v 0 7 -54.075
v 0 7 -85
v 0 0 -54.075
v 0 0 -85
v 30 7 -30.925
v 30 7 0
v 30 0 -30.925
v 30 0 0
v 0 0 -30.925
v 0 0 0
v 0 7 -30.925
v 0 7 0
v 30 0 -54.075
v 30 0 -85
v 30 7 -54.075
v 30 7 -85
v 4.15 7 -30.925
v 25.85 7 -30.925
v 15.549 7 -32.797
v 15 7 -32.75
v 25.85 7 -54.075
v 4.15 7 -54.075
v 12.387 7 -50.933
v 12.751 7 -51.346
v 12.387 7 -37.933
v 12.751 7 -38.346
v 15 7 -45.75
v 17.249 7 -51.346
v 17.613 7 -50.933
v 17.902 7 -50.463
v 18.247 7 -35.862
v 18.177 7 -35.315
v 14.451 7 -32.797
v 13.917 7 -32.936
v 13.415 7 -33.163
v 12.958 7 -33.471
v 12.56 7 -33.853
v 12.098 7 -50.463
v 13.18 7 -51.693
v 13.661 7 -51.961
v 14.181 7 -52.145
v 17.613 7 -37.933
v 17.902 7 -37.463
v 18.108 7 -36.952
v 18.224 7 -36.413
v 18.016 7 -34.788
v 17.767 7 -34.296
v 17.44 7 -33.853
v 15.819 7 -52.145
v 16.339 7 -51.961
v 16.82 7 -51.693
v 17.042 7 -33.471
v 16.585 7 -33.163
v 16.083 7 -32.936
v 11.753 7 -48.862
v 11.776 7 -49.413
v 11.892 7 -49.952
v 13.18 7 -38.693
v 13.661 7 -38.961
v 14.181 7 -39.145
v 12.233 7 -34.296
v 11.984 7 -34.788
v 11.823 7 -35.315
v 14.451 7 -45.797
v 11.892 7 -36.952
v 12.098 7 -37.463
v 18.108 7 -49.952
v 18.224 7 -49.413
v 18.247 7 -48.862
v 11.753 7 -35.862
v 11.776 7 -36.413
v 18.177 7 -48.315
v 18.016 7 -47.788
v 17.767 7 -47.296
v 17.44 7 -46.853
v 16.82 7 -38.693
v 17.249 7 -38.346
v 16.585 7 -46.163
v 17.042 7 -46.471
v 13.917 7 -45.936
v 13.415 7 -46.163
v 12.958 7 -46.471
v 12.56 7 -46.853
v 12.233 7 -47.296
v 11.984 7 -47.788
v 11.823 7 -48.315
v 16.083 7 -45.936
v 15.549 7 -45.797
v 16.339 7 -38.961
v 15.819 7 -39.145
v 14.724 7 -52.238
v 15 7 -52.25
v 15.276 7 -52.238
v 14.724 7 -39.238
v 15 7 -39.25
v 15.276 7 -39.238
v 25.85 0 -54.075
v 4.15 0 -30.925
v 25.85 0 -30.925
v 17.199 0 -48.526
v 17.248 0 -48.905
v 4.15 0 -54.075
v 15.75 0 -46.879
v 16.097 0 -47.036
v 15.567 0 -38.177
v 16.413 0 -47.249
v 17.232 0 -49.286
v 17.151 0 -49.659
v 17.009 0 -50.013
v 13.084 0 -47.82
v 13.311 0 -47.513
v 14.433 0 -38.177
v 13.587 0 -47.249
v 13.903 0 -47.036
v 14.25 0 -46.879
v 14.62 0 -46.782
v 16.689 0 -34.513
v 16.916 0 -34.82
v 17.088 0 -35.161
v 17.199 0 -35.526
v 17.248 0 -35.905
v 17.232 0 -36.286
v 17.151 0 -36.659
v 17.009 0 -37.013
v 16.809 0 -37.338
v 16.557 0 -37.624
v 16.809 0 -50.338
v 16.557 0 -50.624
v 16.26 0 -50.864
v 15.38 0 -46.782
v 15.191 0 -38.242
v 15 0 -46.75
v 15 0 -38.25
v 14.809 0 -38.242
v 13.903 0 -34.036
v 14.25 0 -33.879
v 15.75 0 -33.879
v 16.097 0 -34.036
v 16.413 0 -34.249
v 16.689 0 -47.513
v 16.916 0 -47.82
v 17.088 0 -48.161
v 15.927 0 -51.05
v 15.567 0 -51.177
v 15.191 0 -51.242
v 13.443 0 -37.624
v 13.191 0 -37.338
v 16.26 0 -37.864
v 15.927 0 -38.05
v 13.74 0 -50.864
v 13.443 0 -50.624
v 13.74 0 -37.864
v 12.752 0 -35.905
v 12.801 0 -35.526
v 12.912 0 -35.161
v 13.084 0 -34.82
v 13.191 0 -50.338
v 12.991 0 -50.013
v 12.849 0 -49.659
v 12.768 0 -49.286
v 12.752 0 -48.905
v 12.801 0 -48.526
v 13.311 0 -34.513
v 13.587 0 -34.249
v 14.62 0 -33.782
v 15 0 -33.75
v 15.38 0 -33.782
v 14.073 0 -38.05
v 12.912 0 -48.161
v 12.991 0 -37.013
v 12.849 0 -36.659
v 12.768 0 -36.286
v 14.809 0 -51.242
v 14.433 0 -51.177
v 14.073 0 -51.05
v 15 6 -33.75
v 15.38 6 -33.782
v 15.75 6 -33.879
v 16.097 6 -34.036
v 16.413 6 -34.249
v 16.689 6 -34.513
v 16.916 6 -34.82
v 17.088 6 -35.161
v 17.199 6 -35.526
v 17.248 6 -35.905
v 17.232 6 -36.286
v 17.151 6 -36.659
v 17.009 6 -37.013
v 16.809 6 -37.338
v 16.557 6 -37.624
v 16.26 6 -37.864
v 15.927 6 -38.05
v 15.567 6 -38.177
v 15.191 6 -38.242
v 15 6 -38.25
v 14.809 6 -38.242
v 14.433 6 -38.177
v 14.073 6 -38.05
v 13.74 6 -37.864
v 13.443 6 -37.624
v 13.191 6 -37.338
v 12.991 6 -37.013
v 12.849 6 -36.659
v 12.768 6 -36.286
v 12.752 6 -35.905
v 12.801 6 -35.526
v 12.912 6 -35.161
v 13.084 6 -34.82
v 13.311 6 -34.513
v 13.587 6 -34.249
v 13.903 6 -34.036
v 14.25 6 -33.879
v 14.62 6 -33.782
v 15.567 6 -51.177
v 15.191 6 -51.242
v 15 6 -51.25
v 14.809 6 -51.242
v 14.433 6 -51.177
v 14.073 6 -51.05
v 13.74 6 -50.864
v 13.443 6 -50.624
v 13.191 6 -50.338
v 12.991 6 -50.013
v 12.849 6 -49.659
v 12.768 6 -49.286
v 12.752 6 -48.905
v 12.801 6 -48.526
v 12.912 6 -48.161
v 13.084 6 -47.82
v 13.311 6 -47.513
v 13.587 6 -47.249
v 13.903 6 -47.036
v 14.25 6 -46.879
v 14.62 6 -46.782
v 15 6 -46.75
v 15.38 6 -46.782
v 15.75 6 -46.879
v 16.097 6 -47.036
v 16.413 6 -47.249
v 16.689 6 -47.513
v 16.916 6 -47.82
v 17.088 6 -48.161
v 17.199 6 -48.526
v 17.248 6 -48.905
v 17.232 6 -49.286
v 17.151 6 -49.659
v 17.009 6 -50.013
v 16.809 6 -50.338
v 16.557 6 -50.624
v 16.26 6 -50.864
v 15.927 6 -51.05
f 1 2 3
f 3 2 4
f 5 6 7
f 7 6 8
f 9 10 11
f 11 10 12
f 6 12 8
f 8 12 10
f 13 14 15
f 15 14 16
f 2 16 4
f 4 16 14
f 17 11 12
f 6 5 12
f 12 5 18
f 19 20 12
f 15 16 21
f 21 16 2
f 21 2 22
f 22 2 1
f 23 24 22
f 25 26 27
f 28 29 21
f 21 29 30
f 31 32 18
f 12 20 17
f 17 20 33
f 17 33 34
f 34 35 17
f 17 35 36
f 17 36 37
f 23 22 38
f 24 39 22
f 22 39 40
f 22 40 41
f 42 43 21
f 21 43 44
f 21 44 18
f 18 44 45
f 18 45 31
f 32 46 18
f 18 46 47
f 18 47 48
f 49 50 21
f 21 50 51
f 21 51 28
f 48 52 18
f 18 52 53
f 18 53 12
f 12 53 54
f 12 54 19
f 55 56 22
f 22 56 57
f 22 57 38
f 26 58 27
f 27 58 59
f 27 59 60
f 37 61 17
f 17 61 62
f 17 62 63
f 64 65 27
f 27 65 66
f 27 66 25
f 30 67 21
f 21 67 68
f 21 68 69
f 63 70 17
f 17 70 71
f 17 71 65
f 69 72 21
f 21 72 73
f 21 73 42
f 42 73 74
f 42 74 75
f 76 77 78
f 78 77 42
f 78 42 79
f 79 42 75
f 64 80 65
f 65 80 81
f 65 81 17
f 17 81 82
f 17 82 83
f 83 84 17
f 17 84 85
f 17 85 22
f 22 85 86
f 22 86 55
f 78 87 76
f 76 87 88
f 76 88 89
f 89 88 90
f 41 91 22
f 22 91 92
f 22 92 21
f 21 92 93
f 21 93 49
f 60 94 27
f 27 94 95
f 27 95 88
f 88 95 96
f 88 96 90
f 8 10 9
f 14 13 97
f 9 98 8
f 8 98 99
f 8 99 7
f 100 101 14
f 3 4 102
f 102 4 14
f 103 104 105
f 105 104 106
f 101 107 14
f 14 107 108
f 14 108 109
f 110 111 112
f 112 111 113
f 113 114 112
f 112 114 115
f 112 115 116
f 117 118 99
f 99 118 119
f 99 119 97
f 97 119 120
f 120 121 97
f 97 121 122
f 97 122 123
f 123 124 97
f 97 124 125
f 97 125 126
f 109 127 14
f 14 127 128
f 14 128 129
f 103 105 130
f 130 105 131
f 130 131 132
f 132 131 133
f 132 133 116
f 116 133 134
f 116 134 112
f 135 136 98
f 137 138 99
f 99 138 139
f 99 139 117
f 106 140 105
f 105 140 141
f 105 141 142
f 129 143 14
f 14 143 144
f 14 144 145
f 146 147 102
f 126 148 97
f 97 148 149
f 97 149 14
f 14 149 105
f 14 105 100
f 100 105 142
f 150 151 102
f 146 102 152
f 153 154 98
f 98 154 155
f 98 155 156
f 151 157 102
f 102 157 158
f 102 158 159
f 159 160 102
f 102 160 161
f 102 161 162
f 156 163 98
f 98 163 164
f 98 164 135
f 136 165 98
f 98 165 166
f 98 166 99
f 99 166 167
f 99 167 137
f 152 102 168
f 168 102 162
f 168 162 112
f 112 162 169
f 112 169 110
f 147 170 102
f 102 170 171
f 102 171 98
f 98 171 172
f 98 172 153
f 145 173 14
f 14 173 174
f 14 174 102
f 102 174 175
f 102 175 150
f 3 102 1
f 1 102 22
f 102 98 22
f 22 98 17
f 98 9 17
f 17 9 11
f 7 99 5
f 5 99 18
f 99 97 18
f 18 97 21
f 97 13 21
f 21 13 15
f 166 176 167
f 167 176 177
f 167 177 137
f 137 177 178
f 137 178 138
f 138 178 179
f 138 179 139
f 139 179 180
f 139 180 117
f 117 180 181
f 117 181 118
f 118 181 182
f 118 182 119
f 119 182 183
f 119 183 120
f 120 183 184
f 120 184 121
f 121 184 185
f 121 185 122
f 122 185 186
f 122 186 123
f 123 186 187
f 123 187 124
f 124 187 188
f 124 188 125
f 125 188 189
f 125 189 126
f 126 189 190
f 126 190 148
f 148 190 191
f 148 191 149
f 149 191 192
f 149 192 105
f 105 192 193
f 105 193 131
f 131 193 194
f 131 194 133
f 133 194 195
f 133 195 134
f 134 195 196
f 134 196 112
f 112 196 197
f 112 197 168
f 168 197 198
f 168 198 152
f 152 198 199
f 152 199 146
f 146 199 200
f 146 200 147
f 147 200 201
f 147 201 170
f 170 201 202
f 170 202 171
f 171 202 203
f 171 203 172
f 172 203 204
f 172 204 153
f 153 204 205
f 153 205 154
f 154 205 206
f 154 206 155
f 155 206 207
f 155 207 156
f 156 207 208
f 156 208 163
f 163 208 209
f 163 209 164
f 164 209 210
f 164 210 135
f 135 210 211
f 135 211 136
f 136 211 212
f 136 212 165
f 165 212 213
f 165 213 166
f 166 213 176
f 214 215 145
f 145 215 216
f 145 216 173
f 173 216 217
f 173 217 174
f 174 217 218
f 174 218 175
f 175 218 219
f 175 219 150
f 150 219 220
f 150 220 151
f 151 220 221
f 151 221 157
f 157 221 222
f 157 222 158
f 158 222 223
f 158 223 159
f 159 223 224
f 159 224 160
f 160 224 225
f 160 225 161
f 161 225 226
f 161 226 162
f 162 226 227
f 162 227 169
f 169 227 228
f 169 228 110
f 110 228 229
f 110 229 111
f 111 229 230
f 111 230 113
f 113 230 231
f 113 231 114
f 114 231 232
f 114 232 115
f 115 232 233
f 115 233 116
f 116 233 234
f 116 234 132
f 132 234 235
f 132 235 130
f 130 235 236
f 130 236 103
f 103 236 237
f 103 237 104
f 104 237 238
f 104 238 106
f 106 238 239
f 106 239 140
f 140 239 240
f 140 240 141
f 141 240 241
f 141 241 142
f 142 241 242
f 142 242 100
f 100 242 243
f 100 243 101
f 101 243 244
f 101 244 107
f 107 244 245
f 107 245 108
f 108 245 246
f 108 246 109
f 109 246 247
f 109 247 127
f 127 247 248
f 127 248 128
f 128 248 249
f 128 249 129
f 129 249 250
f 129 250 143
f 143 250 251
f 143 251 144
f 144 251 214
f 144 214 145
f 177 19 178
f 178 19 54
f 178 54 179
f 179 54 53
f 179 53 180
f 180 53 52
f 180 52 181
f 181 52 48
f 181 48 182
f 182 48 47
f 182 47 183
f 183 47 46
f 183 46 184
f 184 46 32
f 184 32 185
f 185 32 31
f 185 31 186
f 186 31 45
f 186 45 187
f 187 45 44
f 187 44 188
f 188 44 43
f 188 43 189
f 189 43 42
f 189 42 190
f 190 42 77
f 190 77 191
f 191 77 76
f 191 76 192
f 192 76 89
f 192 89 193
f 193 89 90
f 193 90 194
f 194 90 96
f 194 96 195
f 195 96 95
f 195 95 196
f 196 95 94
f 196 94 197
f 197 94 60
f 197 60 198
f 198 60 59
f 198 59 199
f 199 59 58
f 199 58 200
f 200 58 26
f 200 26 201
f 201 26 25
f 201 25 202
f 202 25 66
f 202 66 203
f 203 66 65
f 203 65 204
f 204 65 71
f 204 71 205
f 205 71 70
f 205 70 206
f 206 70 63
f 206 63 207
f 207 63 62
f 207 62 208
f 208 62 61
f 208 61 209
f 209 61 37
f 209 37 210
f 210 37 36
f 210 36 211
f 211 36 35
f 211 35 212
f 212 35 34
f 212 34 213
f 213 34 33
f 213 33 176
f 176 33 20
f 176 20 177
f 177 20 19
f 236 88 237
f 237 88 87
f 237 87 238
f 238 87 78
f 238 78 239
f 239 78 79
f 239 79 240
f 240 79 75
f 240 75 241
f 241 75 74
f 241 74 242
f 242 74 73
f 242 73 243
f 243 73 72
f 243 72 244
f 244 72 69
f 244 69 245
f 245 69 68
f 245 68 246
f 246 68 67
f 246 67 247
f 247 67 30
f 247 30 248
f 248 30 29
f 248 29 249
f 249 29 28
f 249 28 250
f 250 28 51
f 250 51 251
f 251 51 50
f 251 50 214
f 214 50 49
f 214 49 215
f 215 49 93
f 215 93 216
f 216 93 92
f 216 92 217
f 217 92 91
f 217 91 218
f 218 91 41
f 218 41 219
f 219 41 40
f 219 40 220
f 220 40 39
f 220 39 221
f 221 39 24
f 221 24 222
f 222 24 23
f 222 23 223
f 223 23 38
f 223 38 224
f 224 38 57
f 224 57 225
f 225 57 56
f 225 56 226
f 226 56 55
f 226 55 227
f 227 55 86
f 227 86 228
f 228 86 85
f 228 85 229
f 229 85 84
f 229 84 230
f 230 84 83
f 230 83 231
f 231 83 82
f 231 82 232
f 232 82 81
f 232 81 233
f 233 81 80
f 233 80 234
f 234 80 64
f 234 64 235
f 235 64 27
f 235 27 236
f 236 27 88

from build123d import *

# Parameters (mm, degrees)
SKETCH1_W           = 30
SKETCH1_H           = 85
BOSS_EXTRUDE1_DEPTH = 7
SKETCH2_W           = 4.15
SKETCH2_H           = 23.15
CUT_EXTRUDE1_DEPTH  = 8
SKETCH3_R           = 2.25
CUT_EXTRUDE2_DEPTH  = 8
CHAMFER1_SIZE       = 1


with BuildPart() as part:
    # Sketch1 → Boss-Extrude1 (new body)
    with BuildSketch(Plane(origin=(0, 0, 0), x_dir=(1, 0, 0), z_dir=(0, 1, 0))):
        with Locations((15, 42.5)):
            Rectangle(SKETCH1_W, SKETCH1_H)
    extrude(amount=BOSS_EXTRUDE1_DEPTH)

    # Sketch2 → Cut-Extrude1 (cut, through all)
    with BuildSketch(Plane(origin=(0, 7, 0), x_dir=(1, 0, 0), z_dir=(0, 1, 0))):
        with Locations((2.075, 42.5)):
            Rectangle(SKETCH2_W, SKETCH2_H)
        with Locations((27.925, 42.5)):
            Rectangle(SKETCH2_W, SKETCH2_H)
    extrude(amount=-CUT_EXTRUDE1_DEPTH, mode=Mode.SUBTRACT)

    # Sketch3 → Cut-Extrude2 (cut, through all)
    with BuildSketch(Plane(origin=(0, 7, 0), x_dir=(1, 0, 0), z_dir=(0, 1, 0))):
        with Locations((15, 49)):
            Circle(SKETCH3_R)
        with Locations((15, 36)):
            Circle(SKETCH3_R)
    extrude(amount=-CUT_EXTRUDE2_DEPTH, mode=Mode.SUBTRACT)

    # Chamfer1
    chamfer1_edges = [part.edges().sort_by_distance(p)[0] for p in [
        (12.75, 7, -49),
        (12.75, 7, -36),
    ]]
    chamfer(chamfer1_edges, length=CHAMFER1_SIZE)


solid = part.part
